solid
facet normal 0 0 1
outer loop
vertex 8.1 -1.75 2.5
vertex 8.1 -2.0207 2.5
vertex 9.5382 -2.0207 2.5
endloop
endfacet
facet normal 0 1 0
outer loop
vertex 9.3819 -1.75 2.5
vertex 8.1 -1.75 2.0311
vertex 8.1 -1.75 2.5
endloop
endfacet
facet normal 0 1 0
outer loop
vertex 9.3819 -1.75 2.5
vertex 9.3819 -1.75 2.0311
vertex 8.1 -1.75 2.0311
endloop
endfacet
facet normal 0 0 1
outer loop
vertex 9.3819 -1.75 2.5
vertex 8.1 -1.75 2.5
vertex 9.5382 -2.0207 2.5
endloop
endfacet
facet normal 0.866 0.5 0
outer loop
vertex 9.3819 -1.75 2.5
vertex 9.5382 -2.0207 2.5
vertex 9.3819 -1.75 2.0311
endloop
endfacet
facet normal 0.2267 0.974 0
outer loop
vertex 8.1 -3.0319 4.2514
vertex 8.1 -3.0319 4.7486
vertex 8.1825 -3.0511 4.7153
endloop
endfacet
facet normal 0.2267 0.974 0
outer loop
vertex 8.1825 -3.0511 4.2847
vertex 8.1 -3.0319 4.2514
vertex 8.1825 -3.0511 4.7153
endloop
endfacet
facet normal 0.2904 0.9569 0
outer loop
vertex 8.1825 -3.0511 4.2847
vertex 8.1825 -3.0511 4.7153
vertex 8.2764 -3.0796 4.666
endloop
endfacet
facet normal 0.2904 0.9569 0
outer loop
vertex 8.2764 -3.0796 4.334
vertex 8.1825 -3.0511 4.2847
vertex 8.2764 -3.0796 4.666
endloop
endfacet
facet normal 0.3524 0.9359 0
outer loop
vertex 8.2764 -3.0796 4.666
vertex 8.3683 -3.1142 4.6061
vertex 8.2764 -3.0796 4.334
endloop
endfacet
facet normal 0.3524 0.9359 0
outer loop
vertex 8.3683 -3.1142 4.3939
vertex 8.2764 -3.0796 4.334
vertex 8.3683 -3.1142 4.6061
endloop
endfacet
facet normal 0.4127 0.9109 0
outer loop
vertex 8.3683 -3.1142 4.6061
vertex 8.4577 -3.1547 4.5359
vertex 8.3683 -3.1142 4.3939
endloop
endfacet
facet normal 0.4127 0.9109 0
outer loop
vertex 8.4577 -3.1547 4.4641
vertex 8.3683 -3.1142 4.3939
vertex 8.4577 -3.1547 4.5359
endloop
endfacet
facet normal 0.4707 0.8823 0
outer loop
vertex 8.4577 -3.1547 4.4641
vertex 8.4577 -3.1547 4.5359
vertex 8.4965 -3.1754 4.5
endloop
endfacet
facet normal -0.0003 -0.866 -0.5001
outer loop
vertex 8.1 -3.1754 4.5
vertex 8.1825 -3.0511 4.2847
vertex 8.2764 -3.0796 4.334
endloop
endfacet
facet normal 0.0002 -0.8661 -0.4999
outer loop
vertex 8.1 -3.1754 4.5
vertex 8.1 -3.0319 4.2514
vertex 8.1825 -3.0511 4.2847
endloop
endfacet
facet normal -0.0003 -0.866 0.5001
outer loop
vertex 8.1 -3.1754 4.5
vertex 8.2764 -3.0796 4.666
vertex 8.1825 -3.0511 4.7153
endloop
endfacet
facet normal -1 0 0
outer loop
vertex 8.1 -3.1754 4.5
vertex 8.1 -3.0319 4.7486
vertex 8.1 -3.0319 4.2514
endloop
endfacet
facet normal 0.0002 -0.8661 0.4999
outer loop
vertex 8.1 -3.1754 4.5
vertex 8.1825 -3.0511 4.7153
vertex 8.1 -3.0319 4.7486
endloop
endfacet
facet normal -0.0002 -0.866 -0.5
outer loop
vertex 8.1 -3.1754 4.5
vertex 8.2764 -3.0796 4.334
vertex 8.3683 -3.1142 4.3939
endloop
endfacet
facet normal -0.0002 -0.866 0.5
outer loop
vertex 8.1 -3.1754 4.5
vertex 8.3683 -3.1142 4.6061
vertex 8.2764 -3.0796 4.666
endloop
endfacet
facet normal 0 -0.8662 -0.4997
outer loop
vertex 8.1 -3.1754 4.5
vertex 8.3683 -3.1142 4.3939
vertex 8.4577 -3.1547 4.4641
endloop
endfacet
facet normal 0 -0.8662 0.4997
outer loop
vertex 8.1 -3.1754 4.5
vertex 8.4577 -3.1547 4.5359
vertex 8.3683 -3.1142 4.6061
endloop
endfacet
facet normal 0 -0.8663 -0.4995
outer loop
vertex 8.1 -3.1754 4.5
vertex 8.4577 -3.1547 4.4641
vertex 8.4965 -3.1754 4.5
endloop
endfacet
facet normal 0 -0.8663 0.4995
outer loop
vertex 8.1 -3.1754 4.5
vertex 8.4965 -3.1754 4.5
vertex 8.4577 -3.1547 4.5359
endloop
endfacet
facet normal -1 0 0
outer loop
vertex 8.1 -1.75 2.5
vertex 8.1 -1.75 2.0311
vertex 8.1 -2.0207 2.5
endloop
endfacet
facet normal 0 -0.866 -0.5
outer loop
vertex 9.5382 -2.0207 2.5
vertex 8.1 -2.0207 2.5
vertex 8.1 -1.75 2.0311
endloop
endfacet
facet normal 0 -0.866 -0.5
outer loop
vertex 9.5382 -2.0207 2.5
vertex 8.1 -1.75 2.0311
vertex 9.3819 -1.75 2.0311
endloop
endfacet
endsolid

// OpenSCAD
$fn=96;
use <mechanical_source_snapshot.scad>;
module actual_nut() { cylinder(r=5.5/sqrt(3),h=2.4,$fn=6); }
module heads_and_tools(points,foot_h) {
    for(p=points) {
        translate([p[0],p[1],foot_h]) cylinder(d=6.6,h=3);
        translate([p[0],p[1],foot_h+3]) cylinder(d=8,h=30);
    }
}
module axial_hardware() {
    for(a=[90,210,330]) {
        p=[9*cos(a),9*sin(a)];
        translate([p[0],p[1],0.1]) actual_nut();
        translate([p[0],p[1],0]) cylinder(d=3,h=14);
        translate([p[0],p[1],14]) cylinder(d=6.6,h=3);
    }
}
module radial_hardware(a=30,tool=true) {
    rotate([0,0,a]) {
        translate([8.1,0,4.5]) rotate([0,90,0]) rotate([0,0,30]) actual_nut();
        translate([1.6,0,4.5]) rotate([0,90,0]) cylinder(d=3,h=10);
        if(tool) translate([11.6,0,4.5]) rotate([0,90,0]) cylinder(d=3,h=20);
    }
}
module placed_hub_shanks(length=14) {
    for(sx=[-1,1],sy=[-1,1]) axle_placement(sx,sy)
        for(a=[90,210,330])
            translate([9*cos(a),9*sin(a),14-length]) cylinder(d=3,h=length);
}
intersection() {
        axial_hardware(); radial_hardware(0,false);
    }
